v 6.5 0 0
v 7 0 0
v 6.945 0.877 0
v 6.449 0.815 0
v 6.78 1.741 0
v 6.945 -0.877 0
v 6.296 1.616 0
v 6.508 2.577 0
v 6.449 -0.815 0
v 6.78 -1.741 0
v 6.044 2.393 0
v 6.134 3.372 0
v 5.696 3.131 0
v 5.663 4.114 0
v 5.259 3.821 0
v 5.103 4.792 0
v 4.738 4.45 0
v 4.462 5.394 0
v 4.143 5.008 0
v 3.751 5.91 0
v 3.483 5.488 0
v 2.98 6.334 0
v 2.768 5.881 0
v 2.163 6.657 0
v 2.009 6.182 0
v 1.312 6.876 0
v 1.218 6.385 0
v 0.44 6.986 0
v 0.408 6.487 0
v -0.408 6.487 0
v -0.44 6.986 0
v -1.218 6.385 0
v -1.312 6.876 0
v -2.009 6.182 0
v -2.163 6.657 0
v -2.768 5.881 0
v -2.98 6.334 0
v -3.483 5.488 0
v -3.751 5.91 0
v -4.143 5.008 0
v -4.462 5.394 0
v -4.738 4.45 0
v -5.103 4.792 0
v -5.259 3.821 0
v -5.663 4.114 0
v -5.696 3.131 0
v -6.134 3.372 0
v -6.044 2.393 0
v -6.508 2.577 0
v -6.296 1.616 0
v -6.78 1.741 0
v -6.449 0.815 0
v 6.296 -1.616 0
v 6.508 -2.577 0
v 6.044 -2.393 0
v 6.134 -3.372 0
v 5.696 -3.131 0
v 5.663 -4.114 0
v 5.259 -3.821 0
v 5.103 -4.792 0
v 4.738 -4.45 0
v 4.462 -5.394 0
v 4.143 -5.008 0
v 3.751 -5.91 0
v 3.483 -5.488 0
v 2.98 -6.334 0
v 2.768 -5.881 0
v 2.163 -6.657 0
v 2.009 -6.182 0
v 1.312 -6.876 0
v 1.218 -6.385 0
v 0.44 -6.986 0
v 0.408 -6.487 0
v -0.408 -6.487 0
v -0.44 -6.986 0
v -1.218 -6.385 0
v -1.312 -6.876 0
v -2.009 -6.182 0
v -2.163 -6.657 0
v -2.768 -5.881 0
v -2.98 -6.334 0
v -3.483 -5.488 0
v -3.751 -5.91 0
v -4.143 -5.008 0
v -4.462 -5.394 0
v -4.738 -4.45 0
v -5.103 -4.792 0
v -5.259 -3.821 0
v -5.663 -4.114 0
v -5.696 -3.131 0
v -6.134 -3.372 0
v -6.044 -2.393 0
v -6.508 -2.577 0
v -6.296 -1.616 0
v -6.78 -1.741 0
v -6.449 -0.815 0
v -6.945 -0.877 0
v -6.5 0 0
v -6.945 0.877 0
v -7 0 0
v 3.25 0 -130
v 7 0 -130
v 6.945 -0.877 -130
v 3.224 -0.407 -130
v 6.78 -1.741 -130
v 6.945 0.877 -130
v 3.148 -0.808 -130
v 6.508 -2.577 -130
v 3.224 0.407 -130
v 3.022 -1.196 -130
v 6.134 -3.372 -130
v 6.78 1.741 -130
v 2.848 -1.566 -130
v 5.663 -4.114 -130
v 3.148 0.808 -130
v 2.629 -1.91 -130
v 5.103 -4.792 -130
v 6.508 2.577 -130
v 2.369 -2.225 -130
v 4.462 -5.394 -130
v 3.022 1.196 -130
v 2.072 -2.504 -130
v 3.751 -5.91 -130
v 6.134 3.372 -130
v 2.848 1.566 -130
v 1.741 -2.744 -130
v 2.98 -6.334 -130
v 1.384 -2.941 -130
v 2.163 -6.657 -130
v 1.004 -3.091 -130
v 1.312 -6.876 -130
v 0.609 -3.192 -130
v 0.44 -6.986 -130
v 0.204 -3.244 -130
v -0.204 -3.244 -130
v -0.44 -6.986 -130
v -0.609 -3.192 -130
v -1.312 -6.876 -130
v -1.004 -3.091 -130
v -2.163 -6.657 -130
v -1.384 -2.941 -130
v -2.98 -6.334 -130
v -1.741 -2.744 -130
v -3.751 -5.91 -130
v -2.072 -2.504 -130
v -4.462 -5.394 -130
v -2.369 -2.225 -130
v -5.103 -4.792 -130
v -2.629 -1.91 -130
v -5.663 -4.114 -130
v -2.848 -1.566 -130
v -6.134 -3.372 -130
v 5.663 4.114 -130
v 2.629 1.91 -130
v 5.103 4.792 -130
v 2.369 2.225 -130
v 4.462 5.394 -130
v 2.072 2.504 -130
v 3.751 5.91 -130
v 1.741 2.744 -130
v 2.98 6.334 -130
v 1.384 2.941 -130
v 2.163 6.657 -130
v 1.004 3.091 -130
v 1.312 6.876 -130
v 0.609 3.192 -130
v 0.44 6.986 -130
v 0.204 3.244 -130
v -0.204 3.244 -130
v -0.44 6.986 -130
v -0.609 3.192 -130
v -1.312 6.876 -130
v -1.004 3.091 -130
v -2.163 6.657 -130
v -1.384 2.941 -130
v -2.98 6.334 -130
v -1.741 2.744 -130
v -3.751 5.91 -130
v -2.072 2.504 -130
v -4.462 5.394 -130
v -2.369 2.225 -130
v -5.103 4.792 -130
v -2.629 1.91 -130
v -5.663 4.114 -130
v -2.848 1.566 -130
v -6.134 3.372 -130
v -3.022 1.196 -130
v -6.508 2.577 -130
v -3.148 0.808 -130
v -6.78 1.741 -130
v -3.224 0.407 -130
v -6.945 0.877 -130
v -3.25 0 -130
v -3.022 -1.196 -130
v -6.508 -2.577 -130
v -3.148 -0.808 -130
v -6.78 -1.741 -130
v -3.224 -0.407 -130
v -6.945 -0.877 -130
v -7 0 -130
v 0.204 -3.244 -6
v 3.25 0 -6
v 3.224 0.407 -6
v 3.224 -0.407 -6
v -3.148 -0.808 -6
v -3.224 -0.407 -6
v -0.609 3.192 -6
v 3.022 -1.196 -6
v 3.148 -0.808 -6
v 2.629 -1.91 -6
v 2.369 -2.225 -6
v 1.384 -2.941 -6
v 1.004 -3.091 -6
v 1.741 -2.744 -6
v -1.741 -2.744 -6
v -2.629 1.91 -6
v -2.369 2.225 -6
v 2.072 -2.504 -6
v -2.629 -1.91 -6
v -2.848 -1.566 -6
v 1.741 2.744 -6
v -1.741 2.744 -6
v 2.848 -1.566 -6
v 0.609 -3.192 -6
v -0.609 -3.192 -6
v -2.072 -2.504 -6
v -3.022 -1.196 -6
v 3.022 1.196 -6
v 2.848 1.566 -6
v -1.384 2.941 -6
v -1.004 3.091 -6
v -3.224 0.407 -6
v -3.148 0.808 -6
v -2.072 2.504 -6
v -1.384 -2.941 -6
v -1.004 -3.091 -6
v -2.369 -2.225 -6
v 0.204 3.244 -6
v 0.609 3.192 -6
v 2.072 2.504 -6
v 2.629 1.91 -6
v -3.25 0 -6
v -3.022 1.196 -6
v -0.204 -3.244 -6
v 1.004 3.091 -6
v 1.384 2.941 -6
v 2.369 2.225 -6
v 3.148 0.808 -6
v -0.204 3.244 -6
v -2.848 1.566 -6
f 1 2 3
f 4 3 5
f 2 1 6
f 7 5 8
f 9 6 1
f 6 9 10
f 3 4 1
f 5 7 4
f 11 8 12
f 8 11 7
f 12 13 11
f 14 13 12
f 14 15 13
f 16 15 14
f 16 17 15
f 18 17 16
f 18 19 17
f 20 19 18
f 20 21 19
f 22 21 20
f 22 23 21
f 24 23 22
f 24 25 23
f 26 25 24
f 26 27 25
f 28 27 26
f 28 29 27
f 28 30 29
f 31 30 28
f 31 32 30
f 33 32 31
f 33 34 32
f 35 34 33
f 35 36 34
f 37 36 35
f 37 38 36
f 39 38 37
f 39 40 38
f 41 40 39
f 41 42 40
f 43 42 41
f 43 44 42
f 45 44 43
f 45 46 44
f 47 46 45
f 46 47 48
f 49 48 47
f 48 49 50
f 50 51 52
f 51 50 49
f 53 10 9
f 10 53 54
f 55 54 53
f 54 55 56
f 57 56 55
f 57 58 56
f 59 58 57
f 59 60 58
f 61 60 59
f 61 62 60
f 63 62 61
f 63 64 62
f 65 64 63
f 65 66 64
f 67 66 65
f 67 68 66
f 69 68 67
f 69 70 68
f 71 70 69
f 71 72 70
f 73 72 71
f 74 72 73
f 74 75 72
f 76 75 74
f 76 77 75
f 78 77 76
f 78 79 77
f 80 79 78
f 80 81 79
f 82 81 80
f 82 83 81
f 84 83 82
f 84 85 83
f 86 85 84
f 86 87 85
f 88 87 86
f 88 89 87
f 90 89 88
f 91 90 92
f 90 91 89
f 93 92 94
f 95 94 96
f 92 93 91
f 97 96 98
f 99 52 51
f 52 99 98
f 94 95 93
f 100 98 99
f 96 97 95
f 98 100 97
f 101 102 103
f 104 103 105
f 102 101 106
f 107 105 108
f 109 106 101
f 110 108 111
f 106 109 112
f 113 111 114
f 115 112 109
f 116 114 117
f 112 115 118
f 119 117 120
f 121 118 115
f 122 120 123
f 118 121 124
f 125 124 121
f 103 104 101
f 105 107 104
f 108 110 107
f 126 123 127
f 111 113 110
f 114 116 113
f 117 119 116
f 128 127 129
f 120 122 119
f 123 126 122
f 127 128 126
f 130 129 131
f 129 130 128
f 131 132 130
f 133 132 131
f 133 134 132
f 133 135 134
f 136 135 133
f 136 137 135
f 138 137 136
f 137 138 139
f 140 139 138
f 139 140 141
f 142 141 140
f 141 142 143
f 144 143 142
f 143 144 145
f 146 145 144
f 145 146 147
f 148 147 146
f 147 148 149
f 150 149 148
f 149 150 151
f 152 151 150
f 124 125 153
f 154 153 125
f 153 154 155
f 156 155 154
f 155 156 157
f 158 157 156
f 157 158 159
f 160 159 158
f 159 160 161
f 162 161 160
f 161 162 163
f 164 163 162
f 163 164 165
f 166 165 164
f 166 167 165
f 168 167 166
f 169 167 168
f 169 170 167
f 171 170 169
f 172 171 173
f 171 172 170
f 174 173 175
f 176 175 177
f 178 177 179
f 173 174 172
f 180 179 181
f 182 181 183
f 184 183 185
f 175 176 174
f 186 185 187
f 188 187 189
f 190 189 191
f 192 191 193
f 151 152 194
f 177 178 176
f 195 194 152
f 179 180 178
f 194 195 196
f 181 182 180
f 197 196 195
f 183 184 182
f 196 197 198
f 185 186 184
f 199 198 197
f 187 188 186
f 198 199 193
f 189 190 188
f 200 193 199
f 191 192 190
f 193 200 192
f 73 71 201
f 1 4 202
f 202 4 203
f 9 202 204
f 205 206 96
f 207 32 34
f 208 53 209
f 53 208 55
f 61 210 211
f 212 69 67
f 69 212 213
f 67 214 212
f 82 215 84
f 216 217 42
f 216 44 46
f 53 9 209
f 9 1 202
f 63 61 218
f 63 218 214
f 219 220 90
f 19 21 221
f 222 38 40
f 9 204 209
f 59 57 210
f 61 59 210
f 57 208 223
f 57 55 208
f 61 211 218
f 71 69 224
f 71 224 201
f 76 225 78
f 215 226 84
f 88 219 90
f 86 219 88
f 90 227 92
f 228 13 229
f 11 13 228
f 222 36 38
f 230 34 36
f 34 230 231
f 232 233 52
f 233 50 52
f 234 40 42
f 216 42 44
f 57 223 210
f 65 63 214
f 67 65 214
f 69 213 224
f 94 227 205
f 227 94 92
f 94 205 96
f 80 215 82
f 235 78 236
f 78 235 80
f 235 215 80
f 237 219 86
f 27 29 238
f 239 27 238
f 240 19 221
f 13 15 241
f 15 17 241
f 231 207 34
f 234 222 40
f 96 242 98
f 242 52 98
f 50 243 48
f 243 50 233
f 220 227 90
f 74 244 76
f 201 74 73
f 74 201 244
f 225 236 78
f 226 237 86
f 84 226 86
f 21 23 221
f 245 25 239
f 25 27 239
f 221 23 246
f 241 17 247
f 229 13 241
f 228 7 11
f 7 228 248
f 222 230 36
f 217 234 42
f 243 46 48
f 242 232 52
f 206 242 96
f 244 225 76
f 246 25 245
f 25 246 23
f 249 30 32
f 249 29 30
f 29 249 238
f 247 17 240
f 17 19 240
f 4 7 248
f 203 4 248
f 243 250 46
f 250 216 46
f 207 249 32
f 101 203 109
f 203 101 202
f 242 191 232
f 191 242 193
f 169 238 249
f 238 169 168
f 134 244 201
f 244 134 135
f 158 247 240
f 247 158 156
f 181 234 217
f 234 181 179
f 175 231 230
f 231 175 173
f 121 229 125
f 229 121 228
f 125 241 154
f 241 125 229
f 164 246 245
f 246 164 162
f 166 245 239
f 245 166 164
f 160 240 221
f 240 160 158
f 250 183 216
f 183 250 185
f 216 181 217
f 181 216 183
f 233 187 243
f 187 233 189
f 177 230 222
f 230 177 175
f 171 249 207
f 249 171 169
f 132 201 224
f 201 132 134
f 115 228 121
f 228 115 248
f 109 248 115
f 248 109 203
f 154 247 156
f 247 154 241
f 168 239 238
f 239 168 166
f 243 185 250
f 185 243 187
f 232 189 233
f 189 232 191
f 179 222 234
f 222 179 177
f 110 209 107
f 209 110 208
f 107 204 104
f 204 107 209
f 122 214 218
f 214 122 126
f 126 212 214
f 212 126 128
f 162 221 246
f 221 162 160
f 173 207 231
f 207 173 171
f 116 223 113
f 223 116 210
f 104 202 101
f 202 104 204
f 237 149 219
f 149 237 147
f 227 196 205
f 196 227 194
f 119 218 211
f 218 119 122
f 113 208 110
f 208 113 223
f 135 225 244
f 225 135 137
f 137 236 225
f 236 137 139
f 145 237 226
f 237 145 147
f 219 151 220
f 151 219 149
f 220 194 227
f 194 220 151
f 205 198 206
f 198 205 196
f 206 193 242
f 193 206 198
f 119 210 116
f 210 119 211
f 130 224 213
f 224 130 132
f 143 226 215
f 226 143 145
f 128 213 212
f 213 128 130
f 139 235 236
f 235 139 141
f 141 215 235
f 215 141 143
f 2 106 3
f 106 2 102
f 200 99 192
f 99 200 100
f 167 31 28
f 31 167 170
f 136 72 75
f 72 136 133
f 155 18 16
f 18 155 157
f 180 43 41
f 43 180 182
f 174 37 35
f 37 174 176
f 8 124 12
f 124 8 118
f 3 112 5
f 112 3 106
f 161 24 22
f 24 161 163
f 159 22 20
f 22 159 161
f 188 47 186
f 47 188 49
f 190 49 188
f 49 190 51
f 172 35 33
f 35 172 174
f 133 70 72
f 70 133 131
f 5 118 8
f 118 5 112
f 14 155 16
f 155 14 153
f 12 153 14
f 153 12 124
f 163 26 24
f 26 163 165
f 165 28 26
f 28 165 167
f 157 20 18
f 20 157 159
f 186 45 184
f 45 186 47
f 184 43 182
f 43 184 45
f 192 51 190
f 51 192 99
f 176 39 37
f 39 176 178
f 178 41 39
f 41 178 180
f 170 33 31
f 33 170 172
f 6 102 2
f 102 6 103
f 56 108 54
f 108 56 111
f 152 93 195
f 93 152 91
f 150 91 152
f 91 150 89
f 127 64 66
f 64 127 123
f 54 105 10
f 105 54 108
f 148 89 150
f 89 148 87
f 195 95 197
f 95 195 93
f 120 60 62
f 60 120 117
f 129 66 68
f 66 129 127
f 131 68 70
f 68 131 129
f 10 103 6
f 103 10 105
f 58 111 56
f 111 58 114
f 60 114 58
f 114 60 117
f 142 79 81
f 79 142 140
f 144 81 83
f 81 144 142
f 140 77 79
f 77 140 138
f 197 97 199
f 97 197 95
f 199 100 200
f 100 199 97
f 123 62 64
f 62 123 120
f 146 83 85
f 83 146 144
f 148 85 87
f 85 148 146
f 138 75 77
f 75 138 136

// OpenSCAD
$fn = 50;


difference() {
	union() {
		translate(v = [0, 0, -130.0000000000]) {
			cylinder(h = 130, r = 7.0000000000);
		}
	}
	union() {
		translate(v = [0, 0, 0]) {
			rotate(a = [0, 0, 0]) {
				difference() {
					union() {
						#translate(v = [0, 0, -130.0000000000]) {
							cylinder(h = 130, r = 2.2500000000);
						}
						#translate(v = [0, 0, -6]) {
							cylinder(h = 6, r1 = 3.2500000000, r2 = 6.5000000000);
						}
						#translate(v = [0, 0, -130.0000000000]) {
							cylinder(h = 130, r = 3.2500000000);
						}
						#translate(v = [0, 0, -130.0000000000]) {
							cylinder(h = 130, r = 2.2500000000);
						}
					}
					union();
				}
			}
		}
	}
}
